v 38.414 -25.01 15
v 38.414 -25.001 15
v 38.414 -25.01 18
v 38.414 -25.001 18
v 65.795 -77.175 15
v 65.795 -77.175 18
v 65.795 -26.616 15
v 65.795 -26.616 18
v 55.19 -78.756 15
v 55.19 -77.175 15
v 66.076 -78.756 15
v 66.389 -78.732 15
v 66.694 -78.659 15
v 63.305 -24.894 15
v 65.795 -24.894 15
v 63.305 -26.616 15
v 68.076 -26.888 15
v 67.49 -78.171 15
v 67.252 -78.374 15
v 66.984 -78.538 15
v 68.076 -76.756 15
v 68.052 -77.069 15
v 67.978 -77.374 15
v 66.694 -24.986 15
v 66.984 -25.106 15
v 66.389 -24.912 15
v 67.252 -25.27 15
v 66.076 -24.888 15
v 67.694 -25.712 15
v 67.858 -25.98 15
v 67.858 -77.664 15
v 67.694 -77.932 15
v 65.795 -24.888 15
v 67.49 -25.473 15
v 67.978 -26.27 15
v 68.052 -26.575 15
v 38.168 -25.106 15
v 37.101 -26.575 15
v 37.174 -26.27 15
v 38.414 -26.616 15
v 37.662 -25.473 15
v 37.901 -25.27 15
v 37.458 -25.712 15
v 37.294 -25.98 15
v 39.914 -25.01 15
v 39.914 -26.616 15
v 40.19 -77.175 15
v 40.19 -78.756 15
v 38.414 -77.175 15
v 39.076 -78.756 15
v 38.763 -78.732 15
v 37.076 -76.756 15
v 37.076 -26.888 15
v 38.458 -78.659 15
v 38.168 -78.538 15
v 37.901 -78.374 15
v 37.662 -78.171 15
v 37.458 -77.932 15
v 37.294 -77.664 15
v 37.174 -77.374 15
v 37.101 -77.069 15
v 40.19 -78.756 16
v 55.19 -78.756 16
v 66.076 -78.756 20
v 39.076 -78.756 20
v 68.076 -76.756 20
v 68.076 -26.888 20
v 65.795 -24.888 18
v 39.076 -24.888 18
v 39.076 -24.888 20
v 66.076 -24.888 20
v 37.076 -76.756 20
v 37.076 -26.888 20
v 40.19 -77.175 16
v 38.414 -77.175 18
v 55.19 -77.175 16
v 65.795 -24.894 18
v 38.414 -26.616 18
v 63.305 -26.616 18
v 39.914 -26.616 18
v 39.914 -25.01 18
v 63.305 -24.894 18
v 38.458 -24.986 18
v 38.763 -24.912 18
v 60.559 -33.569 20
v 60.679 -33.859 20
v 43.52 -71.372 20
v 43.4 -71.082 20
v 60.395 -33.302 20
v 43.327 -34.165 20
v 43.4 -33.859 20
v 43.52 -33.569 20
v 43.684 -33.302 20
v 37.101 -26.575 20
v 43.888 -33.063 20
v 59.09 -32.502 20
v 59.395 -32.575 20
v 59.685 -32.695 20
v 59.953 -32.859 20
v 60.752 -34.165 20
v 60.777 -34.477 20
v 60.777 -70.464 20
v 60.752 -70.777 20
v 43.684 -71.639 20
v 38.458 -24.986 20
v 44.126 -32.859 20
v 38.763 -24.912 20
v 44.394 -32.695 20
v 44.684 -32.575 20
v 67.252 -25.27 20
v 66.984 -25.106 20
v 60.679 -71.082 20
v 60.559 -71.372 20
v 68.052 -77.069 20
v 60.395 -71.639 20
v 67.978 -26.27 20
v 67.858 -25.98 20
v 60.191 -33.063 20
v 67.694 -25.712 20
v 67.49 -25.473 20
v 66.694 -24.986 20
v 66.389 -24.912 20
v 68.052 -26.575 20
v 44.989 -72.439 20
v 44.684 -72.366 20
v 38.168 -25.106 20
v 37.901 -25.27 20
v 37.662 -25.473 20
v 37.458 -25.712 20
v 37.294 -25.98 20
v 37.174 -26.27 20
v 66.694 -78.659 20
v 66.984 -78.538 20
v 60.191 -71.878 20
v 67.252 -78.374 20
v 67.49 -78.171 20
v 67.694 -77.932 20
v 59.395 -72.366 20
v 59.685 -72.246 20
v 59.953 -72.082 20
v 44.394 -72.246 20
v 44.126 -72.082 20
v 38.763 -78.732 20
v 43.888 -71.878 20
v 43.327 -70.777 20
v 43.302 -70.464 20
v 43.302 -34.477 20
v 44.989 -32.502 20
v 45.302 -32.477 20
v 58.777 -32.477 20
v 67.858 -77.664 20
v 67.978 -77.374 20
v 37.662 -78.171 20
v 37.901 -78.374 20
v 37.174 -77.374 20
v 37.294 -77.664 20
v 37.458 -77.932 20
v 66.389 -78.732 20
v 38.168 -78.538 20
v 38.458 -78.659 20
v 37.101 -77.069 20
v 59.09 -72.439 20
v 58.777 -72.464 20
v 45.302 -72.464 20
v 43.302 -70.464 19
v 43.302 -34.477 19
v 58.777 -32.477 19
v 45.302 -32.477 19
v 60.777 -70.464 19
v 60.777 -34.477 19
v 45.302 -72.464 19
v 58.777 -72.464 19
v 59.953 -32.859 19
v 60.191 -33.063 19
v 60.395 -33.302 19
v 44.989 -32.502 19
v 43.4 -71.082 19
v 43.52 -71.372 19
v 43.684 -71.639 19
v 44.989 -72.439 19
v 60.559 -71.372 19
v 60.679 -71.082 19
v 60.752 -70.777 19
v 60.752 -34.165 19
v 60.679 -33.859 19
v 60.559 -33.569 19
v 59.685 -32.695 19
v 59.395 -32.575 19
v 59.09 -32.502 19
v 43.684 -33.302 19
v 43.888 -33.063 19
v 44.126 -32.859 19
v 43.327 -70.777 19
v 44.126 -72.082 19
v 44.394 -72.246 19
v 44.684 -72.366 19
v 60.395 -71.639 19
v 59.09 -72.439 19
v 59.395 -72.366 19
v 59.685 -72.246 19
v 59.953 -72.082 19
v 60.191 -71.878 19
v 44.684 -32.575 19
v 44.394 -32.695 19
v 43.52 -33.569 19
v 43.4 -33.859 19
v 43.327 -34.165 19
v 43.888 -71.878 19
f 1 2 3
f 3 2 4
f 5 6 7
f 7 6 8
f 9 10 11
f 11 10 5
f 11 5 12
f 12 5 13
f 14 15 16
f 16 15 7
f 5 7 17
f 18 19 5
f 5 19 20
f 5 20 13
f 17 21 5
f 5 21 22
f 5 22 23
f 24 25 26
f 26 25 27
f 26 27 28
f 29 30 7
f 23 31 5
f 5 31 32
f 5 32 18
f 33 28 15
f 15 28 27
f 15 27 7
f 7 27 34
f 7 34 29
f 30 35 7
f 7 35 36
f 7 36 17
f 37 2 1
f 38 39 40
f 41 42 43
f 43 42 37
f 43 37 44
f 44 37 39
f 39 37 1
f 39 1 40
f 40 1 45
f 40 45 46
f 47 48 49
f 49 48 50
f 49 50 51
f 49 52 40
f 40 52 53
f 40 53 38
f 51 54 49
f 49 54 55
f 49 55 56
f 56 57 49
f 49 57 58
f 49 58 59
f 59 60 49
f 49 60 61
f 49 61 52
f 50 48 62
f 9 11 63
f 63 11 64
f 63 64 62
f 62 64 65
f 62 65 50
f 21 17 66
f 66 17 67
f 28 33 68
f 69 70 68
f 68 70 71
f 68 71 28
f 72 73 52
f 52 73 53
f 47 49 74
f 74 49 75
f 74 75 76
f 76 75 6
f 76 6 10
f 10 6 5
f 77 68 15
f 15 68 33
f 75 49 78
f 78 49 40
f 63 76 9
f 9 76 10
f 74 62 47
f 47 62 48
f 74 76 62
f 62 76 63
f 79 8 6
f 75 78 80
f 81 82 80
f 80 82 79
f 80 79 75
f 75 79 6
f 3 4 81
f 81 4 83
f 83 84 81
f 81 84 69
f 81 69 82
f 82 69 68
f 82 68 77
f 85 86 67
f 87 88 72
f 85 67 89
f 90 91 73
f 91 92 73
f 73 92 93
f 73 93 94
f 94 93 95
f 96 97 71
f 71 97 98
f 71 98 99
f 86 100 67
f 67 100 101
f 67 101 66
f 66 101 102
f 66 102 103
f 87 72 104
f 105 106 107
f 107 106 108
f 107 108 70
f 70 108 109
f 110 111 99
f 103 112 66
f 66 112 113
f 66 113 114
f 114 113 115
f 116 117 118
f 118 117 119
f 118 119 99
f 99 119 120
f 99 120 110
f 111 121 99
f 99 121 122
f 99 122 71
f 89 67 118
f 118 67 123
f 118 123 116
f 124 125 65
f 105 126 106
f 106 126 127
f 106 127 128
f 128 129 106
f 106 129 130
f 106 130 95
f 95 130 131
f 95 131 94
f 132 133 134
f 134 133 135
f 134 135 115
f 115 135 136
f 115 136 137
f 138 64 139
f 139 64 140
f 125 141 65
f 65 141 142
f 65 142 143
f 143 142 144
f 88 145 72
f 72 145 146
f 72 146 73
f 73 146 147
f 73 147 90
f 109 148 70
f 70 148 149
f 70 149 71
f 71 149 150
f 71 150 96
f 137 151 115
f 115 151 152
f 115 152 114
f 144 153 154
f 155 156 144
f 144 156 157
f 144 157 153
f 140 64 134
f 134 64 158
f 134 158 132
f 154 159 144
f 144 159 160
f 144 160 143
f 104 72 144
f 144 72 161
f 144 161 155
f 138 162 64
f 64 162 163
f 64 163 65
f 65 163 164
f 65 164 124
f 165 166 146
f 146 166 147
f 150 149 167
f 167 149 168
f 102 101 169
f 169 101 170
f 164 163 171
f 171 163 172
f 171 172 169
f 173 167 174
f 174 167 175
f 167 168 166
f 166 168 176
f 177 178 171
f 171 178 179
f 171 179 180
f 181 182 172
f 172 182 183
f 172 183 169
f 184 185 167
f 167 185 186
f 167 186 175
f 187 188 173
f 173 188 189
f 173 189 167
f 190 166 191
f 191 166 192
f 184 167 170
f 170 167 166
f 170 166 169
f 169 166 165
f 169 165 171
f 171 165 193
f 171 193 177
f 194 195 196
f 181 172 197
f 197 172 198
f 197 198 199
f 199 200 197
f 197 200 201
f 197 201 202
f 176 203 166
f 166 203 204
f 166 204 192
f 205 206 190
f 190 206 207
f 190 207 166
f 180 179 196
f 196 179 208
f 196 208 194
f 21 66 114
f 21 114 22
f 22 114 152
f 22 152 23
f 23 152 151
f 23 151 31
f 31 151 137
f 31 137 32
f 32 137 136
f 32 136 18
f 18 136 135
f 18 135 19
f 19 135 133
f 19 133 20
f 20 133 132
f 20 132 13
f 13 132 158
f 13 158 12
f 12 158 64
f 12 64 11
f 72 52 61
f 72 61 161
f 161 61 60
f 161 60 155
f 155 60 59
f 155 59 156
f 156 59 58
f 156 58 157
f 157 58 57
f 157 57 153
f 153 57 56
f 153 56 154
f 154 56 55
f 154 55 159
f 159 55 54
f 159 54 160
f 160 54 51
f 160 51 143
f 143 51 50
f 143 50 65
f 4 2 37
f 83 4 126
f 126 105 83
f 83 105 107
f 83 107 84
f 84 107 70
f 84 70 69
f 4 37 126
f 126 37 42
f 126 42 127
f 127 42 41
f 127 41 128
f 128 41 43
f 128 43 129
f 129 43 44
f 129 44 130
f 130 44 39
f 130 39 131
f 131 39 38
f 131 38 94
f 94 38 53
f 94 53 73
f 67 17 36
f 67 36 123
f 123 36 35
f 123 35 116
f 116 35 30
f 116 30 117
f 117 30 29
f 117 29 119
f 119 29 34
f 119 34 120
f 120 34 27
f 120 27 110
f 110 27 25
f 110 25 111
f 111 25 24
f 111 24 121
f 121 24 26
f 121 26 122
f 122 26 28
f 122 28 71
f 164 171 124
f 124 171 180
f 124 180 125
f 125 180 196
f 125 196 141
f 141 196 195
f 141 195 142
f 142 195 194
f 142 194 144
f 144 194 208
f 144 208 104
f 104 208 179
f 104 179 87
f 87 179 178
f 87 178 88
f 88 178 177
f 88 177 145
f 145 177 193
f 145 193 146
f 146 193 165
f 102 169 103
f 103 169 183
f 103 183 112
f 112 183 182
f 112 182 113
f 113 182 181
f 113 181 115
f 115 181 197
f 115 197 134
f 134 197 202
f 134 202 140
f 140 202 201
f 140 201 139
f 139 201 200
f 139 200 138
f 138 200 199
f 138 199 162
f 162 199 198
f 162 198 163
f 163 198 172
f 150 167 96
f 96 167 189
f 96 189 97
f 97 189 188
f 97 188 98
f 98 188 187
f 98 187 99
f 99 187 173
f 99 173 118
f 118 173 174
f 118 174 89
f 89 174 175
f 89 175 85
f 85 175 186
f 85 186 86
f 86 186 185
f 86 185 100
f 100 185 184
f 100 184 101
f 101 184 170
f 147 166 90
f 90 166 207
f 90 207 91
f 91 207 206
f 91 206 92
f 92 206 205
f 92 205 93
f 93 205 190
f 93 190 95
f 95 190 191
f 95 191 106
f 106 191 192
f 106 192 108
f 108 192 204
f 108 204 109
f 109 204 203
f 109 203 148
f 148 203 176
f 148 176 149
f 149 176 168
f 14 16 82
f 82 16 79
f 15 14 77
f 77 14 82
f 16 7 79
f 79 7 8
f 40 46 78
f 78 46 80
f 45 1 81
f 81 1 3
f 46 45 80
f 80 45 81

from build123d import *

# Parameters (mm, degrees)
SKETCH_5_W          = 31
SKETCH_5_H          = 53.868777402
SKETCH_5_W_2        = 27.381586342
SKETCH_5_H_2        = 50.42341648
EXTRUDE_3_DEPTH     = 3
SKETCH_8_W          = 15
SKETCH_8_H          = 1.581115617
CUT_EXTRUDE_6_DEPTH = 1
SKETCH_9_W          = 31
SKETCH_9_H          = 53.868777402
EXTRUDE_5_DEPTH     = 2
SKETCH_10_W         = 17.475002228
SKETCH_10_H         = 39.986467982
CUT_EXTRUDE_7_DEPTH = 1
FILLET_1_R          = 2
FILLET_2_R          = 2
SKETCH_11_W         = 27.381586342
SKETCH_11_H         = 3
CUT_EXTRUDE_8_DEPTH = 2
SKETCH_14_W         = 2.490628955
SKETCH_14_H         = 1.721797648
SKETCH_14_W_2       = 1.5
SKETCH_14_H_2       = 1.606542801
EXTRUDE_6_DEPTH     = 3


with BuildPart() as part:
    # 草图5 → 凸台-拉伸3 (new body)
    with BuildSketch(Plane.XY.offset(15)):
        with Locations((52.576231829, -51.822040042)):
            Rectangle(SKETCH_5_W, SKETCH_5_H)
        with Locations((52.104679946, -51.963604886)):
            Rectangle(SKETCH_5_W_2, SKETCH_5_H_2, mode=Mode.SUBTRACT)
    extrude(amount=EXTRUDE_3_DEPTH)

    # 草图8 → 切除-拉伸6 (cut)
    with BuildSketch(Plane(origin=(0, 0, 15), x_dir=(-1, 0, 0), z_dir=(0, 0, -1))):
        with Locations((-47.690080224, -77.965870935)):
            Rectangle(SKETCH_8_W, SKETCH_8_H)
    extrude(amount=-CUT_EXTRUDE_6_DEPTH, mode=Mode.SUBTRACT)

    # 草图9 → 凸台-拉伸5 (add)
    with BuildSketch(Plane.XY.offset(18)):
        with Locations((52.576231829, -51.822040042)):
            Rectangle(SKETCH_9_W, SKETCH_9_H)
    extrude(amount=EXTRUDE_5_DEPTH)

    # 草图10 → 切除-拉伸7 (cut)
    with BuildSketch(Plane.XY.offset(20)):
        with Locations((52.039568352, -52.470675496)):
            Rectangle(SKETCH_10_W, SKETCH_10_H)
    extrude(amount=-CUT_EXTRUDE_7_DEPTH, mode=Mode.SUBTRACT)

    # 圆角1
    fillet_1_edges = [part.edges().sort_by_distance(p)[0] for p in [
        (37.076231829, -78.756428743, 17.5),
        (37.076231829, -24.887651341, 17.5),
        (68.076231829, -24.887651341, 17.5),
        (68.076231829, -78.756428743, 17.5),
    ]]
    fillet(fillet_1_edges, radius=FILLET_1_R)

    # 圆角2
    fillet_2_edges = [part.edges().sort_by_distance(p)[0] for p in [
        (43.302067238, -72.463909487, 19.5),
        (43.302067238, -32.477441505, 19.5),
        (60.777069466, -32.477441505, 19.5),
        (60.777069466, -72.463909487, 19.5),
    ]]
    fillet(fillet_2_edges, radius=FILLET_2_R)

    # 草图11 → 切除-拉伸8 (cut)
    with BuildSketch(Plane(origin=(0, -26.751896646, 0), x_dir=(-1, 0, 0), z_dir=(0, -1, 0))):
        with Locations((-52.104679946, -16.5)):
            Rectangle(SKETCH_11_W, SKETCH_11_H)
    extrude(amount=-CUT_EXTRUDE_8_DEPTH, mode=Mode.SUBTRACT)

    # 草图14 → 凸台-拉伸6 (add)
    with BuildSketch(Plane(origin=(0, 0, 18), x_dir=(-1, 0, 0), z_dir=(0, 0, -1))):
        with Locations((-64.550158639, -25.755243126)):
            Rectangle(SKETCH_14_W, SKETCH_14_H)
        with Locations((-39.163886775, -25.81287055)):
            Rectangle(SKETCH_14_W_2, SKETCH_14_H_2)
    extrude(amount=EXTRUDE_6_DEPTH)


solid = part.part
